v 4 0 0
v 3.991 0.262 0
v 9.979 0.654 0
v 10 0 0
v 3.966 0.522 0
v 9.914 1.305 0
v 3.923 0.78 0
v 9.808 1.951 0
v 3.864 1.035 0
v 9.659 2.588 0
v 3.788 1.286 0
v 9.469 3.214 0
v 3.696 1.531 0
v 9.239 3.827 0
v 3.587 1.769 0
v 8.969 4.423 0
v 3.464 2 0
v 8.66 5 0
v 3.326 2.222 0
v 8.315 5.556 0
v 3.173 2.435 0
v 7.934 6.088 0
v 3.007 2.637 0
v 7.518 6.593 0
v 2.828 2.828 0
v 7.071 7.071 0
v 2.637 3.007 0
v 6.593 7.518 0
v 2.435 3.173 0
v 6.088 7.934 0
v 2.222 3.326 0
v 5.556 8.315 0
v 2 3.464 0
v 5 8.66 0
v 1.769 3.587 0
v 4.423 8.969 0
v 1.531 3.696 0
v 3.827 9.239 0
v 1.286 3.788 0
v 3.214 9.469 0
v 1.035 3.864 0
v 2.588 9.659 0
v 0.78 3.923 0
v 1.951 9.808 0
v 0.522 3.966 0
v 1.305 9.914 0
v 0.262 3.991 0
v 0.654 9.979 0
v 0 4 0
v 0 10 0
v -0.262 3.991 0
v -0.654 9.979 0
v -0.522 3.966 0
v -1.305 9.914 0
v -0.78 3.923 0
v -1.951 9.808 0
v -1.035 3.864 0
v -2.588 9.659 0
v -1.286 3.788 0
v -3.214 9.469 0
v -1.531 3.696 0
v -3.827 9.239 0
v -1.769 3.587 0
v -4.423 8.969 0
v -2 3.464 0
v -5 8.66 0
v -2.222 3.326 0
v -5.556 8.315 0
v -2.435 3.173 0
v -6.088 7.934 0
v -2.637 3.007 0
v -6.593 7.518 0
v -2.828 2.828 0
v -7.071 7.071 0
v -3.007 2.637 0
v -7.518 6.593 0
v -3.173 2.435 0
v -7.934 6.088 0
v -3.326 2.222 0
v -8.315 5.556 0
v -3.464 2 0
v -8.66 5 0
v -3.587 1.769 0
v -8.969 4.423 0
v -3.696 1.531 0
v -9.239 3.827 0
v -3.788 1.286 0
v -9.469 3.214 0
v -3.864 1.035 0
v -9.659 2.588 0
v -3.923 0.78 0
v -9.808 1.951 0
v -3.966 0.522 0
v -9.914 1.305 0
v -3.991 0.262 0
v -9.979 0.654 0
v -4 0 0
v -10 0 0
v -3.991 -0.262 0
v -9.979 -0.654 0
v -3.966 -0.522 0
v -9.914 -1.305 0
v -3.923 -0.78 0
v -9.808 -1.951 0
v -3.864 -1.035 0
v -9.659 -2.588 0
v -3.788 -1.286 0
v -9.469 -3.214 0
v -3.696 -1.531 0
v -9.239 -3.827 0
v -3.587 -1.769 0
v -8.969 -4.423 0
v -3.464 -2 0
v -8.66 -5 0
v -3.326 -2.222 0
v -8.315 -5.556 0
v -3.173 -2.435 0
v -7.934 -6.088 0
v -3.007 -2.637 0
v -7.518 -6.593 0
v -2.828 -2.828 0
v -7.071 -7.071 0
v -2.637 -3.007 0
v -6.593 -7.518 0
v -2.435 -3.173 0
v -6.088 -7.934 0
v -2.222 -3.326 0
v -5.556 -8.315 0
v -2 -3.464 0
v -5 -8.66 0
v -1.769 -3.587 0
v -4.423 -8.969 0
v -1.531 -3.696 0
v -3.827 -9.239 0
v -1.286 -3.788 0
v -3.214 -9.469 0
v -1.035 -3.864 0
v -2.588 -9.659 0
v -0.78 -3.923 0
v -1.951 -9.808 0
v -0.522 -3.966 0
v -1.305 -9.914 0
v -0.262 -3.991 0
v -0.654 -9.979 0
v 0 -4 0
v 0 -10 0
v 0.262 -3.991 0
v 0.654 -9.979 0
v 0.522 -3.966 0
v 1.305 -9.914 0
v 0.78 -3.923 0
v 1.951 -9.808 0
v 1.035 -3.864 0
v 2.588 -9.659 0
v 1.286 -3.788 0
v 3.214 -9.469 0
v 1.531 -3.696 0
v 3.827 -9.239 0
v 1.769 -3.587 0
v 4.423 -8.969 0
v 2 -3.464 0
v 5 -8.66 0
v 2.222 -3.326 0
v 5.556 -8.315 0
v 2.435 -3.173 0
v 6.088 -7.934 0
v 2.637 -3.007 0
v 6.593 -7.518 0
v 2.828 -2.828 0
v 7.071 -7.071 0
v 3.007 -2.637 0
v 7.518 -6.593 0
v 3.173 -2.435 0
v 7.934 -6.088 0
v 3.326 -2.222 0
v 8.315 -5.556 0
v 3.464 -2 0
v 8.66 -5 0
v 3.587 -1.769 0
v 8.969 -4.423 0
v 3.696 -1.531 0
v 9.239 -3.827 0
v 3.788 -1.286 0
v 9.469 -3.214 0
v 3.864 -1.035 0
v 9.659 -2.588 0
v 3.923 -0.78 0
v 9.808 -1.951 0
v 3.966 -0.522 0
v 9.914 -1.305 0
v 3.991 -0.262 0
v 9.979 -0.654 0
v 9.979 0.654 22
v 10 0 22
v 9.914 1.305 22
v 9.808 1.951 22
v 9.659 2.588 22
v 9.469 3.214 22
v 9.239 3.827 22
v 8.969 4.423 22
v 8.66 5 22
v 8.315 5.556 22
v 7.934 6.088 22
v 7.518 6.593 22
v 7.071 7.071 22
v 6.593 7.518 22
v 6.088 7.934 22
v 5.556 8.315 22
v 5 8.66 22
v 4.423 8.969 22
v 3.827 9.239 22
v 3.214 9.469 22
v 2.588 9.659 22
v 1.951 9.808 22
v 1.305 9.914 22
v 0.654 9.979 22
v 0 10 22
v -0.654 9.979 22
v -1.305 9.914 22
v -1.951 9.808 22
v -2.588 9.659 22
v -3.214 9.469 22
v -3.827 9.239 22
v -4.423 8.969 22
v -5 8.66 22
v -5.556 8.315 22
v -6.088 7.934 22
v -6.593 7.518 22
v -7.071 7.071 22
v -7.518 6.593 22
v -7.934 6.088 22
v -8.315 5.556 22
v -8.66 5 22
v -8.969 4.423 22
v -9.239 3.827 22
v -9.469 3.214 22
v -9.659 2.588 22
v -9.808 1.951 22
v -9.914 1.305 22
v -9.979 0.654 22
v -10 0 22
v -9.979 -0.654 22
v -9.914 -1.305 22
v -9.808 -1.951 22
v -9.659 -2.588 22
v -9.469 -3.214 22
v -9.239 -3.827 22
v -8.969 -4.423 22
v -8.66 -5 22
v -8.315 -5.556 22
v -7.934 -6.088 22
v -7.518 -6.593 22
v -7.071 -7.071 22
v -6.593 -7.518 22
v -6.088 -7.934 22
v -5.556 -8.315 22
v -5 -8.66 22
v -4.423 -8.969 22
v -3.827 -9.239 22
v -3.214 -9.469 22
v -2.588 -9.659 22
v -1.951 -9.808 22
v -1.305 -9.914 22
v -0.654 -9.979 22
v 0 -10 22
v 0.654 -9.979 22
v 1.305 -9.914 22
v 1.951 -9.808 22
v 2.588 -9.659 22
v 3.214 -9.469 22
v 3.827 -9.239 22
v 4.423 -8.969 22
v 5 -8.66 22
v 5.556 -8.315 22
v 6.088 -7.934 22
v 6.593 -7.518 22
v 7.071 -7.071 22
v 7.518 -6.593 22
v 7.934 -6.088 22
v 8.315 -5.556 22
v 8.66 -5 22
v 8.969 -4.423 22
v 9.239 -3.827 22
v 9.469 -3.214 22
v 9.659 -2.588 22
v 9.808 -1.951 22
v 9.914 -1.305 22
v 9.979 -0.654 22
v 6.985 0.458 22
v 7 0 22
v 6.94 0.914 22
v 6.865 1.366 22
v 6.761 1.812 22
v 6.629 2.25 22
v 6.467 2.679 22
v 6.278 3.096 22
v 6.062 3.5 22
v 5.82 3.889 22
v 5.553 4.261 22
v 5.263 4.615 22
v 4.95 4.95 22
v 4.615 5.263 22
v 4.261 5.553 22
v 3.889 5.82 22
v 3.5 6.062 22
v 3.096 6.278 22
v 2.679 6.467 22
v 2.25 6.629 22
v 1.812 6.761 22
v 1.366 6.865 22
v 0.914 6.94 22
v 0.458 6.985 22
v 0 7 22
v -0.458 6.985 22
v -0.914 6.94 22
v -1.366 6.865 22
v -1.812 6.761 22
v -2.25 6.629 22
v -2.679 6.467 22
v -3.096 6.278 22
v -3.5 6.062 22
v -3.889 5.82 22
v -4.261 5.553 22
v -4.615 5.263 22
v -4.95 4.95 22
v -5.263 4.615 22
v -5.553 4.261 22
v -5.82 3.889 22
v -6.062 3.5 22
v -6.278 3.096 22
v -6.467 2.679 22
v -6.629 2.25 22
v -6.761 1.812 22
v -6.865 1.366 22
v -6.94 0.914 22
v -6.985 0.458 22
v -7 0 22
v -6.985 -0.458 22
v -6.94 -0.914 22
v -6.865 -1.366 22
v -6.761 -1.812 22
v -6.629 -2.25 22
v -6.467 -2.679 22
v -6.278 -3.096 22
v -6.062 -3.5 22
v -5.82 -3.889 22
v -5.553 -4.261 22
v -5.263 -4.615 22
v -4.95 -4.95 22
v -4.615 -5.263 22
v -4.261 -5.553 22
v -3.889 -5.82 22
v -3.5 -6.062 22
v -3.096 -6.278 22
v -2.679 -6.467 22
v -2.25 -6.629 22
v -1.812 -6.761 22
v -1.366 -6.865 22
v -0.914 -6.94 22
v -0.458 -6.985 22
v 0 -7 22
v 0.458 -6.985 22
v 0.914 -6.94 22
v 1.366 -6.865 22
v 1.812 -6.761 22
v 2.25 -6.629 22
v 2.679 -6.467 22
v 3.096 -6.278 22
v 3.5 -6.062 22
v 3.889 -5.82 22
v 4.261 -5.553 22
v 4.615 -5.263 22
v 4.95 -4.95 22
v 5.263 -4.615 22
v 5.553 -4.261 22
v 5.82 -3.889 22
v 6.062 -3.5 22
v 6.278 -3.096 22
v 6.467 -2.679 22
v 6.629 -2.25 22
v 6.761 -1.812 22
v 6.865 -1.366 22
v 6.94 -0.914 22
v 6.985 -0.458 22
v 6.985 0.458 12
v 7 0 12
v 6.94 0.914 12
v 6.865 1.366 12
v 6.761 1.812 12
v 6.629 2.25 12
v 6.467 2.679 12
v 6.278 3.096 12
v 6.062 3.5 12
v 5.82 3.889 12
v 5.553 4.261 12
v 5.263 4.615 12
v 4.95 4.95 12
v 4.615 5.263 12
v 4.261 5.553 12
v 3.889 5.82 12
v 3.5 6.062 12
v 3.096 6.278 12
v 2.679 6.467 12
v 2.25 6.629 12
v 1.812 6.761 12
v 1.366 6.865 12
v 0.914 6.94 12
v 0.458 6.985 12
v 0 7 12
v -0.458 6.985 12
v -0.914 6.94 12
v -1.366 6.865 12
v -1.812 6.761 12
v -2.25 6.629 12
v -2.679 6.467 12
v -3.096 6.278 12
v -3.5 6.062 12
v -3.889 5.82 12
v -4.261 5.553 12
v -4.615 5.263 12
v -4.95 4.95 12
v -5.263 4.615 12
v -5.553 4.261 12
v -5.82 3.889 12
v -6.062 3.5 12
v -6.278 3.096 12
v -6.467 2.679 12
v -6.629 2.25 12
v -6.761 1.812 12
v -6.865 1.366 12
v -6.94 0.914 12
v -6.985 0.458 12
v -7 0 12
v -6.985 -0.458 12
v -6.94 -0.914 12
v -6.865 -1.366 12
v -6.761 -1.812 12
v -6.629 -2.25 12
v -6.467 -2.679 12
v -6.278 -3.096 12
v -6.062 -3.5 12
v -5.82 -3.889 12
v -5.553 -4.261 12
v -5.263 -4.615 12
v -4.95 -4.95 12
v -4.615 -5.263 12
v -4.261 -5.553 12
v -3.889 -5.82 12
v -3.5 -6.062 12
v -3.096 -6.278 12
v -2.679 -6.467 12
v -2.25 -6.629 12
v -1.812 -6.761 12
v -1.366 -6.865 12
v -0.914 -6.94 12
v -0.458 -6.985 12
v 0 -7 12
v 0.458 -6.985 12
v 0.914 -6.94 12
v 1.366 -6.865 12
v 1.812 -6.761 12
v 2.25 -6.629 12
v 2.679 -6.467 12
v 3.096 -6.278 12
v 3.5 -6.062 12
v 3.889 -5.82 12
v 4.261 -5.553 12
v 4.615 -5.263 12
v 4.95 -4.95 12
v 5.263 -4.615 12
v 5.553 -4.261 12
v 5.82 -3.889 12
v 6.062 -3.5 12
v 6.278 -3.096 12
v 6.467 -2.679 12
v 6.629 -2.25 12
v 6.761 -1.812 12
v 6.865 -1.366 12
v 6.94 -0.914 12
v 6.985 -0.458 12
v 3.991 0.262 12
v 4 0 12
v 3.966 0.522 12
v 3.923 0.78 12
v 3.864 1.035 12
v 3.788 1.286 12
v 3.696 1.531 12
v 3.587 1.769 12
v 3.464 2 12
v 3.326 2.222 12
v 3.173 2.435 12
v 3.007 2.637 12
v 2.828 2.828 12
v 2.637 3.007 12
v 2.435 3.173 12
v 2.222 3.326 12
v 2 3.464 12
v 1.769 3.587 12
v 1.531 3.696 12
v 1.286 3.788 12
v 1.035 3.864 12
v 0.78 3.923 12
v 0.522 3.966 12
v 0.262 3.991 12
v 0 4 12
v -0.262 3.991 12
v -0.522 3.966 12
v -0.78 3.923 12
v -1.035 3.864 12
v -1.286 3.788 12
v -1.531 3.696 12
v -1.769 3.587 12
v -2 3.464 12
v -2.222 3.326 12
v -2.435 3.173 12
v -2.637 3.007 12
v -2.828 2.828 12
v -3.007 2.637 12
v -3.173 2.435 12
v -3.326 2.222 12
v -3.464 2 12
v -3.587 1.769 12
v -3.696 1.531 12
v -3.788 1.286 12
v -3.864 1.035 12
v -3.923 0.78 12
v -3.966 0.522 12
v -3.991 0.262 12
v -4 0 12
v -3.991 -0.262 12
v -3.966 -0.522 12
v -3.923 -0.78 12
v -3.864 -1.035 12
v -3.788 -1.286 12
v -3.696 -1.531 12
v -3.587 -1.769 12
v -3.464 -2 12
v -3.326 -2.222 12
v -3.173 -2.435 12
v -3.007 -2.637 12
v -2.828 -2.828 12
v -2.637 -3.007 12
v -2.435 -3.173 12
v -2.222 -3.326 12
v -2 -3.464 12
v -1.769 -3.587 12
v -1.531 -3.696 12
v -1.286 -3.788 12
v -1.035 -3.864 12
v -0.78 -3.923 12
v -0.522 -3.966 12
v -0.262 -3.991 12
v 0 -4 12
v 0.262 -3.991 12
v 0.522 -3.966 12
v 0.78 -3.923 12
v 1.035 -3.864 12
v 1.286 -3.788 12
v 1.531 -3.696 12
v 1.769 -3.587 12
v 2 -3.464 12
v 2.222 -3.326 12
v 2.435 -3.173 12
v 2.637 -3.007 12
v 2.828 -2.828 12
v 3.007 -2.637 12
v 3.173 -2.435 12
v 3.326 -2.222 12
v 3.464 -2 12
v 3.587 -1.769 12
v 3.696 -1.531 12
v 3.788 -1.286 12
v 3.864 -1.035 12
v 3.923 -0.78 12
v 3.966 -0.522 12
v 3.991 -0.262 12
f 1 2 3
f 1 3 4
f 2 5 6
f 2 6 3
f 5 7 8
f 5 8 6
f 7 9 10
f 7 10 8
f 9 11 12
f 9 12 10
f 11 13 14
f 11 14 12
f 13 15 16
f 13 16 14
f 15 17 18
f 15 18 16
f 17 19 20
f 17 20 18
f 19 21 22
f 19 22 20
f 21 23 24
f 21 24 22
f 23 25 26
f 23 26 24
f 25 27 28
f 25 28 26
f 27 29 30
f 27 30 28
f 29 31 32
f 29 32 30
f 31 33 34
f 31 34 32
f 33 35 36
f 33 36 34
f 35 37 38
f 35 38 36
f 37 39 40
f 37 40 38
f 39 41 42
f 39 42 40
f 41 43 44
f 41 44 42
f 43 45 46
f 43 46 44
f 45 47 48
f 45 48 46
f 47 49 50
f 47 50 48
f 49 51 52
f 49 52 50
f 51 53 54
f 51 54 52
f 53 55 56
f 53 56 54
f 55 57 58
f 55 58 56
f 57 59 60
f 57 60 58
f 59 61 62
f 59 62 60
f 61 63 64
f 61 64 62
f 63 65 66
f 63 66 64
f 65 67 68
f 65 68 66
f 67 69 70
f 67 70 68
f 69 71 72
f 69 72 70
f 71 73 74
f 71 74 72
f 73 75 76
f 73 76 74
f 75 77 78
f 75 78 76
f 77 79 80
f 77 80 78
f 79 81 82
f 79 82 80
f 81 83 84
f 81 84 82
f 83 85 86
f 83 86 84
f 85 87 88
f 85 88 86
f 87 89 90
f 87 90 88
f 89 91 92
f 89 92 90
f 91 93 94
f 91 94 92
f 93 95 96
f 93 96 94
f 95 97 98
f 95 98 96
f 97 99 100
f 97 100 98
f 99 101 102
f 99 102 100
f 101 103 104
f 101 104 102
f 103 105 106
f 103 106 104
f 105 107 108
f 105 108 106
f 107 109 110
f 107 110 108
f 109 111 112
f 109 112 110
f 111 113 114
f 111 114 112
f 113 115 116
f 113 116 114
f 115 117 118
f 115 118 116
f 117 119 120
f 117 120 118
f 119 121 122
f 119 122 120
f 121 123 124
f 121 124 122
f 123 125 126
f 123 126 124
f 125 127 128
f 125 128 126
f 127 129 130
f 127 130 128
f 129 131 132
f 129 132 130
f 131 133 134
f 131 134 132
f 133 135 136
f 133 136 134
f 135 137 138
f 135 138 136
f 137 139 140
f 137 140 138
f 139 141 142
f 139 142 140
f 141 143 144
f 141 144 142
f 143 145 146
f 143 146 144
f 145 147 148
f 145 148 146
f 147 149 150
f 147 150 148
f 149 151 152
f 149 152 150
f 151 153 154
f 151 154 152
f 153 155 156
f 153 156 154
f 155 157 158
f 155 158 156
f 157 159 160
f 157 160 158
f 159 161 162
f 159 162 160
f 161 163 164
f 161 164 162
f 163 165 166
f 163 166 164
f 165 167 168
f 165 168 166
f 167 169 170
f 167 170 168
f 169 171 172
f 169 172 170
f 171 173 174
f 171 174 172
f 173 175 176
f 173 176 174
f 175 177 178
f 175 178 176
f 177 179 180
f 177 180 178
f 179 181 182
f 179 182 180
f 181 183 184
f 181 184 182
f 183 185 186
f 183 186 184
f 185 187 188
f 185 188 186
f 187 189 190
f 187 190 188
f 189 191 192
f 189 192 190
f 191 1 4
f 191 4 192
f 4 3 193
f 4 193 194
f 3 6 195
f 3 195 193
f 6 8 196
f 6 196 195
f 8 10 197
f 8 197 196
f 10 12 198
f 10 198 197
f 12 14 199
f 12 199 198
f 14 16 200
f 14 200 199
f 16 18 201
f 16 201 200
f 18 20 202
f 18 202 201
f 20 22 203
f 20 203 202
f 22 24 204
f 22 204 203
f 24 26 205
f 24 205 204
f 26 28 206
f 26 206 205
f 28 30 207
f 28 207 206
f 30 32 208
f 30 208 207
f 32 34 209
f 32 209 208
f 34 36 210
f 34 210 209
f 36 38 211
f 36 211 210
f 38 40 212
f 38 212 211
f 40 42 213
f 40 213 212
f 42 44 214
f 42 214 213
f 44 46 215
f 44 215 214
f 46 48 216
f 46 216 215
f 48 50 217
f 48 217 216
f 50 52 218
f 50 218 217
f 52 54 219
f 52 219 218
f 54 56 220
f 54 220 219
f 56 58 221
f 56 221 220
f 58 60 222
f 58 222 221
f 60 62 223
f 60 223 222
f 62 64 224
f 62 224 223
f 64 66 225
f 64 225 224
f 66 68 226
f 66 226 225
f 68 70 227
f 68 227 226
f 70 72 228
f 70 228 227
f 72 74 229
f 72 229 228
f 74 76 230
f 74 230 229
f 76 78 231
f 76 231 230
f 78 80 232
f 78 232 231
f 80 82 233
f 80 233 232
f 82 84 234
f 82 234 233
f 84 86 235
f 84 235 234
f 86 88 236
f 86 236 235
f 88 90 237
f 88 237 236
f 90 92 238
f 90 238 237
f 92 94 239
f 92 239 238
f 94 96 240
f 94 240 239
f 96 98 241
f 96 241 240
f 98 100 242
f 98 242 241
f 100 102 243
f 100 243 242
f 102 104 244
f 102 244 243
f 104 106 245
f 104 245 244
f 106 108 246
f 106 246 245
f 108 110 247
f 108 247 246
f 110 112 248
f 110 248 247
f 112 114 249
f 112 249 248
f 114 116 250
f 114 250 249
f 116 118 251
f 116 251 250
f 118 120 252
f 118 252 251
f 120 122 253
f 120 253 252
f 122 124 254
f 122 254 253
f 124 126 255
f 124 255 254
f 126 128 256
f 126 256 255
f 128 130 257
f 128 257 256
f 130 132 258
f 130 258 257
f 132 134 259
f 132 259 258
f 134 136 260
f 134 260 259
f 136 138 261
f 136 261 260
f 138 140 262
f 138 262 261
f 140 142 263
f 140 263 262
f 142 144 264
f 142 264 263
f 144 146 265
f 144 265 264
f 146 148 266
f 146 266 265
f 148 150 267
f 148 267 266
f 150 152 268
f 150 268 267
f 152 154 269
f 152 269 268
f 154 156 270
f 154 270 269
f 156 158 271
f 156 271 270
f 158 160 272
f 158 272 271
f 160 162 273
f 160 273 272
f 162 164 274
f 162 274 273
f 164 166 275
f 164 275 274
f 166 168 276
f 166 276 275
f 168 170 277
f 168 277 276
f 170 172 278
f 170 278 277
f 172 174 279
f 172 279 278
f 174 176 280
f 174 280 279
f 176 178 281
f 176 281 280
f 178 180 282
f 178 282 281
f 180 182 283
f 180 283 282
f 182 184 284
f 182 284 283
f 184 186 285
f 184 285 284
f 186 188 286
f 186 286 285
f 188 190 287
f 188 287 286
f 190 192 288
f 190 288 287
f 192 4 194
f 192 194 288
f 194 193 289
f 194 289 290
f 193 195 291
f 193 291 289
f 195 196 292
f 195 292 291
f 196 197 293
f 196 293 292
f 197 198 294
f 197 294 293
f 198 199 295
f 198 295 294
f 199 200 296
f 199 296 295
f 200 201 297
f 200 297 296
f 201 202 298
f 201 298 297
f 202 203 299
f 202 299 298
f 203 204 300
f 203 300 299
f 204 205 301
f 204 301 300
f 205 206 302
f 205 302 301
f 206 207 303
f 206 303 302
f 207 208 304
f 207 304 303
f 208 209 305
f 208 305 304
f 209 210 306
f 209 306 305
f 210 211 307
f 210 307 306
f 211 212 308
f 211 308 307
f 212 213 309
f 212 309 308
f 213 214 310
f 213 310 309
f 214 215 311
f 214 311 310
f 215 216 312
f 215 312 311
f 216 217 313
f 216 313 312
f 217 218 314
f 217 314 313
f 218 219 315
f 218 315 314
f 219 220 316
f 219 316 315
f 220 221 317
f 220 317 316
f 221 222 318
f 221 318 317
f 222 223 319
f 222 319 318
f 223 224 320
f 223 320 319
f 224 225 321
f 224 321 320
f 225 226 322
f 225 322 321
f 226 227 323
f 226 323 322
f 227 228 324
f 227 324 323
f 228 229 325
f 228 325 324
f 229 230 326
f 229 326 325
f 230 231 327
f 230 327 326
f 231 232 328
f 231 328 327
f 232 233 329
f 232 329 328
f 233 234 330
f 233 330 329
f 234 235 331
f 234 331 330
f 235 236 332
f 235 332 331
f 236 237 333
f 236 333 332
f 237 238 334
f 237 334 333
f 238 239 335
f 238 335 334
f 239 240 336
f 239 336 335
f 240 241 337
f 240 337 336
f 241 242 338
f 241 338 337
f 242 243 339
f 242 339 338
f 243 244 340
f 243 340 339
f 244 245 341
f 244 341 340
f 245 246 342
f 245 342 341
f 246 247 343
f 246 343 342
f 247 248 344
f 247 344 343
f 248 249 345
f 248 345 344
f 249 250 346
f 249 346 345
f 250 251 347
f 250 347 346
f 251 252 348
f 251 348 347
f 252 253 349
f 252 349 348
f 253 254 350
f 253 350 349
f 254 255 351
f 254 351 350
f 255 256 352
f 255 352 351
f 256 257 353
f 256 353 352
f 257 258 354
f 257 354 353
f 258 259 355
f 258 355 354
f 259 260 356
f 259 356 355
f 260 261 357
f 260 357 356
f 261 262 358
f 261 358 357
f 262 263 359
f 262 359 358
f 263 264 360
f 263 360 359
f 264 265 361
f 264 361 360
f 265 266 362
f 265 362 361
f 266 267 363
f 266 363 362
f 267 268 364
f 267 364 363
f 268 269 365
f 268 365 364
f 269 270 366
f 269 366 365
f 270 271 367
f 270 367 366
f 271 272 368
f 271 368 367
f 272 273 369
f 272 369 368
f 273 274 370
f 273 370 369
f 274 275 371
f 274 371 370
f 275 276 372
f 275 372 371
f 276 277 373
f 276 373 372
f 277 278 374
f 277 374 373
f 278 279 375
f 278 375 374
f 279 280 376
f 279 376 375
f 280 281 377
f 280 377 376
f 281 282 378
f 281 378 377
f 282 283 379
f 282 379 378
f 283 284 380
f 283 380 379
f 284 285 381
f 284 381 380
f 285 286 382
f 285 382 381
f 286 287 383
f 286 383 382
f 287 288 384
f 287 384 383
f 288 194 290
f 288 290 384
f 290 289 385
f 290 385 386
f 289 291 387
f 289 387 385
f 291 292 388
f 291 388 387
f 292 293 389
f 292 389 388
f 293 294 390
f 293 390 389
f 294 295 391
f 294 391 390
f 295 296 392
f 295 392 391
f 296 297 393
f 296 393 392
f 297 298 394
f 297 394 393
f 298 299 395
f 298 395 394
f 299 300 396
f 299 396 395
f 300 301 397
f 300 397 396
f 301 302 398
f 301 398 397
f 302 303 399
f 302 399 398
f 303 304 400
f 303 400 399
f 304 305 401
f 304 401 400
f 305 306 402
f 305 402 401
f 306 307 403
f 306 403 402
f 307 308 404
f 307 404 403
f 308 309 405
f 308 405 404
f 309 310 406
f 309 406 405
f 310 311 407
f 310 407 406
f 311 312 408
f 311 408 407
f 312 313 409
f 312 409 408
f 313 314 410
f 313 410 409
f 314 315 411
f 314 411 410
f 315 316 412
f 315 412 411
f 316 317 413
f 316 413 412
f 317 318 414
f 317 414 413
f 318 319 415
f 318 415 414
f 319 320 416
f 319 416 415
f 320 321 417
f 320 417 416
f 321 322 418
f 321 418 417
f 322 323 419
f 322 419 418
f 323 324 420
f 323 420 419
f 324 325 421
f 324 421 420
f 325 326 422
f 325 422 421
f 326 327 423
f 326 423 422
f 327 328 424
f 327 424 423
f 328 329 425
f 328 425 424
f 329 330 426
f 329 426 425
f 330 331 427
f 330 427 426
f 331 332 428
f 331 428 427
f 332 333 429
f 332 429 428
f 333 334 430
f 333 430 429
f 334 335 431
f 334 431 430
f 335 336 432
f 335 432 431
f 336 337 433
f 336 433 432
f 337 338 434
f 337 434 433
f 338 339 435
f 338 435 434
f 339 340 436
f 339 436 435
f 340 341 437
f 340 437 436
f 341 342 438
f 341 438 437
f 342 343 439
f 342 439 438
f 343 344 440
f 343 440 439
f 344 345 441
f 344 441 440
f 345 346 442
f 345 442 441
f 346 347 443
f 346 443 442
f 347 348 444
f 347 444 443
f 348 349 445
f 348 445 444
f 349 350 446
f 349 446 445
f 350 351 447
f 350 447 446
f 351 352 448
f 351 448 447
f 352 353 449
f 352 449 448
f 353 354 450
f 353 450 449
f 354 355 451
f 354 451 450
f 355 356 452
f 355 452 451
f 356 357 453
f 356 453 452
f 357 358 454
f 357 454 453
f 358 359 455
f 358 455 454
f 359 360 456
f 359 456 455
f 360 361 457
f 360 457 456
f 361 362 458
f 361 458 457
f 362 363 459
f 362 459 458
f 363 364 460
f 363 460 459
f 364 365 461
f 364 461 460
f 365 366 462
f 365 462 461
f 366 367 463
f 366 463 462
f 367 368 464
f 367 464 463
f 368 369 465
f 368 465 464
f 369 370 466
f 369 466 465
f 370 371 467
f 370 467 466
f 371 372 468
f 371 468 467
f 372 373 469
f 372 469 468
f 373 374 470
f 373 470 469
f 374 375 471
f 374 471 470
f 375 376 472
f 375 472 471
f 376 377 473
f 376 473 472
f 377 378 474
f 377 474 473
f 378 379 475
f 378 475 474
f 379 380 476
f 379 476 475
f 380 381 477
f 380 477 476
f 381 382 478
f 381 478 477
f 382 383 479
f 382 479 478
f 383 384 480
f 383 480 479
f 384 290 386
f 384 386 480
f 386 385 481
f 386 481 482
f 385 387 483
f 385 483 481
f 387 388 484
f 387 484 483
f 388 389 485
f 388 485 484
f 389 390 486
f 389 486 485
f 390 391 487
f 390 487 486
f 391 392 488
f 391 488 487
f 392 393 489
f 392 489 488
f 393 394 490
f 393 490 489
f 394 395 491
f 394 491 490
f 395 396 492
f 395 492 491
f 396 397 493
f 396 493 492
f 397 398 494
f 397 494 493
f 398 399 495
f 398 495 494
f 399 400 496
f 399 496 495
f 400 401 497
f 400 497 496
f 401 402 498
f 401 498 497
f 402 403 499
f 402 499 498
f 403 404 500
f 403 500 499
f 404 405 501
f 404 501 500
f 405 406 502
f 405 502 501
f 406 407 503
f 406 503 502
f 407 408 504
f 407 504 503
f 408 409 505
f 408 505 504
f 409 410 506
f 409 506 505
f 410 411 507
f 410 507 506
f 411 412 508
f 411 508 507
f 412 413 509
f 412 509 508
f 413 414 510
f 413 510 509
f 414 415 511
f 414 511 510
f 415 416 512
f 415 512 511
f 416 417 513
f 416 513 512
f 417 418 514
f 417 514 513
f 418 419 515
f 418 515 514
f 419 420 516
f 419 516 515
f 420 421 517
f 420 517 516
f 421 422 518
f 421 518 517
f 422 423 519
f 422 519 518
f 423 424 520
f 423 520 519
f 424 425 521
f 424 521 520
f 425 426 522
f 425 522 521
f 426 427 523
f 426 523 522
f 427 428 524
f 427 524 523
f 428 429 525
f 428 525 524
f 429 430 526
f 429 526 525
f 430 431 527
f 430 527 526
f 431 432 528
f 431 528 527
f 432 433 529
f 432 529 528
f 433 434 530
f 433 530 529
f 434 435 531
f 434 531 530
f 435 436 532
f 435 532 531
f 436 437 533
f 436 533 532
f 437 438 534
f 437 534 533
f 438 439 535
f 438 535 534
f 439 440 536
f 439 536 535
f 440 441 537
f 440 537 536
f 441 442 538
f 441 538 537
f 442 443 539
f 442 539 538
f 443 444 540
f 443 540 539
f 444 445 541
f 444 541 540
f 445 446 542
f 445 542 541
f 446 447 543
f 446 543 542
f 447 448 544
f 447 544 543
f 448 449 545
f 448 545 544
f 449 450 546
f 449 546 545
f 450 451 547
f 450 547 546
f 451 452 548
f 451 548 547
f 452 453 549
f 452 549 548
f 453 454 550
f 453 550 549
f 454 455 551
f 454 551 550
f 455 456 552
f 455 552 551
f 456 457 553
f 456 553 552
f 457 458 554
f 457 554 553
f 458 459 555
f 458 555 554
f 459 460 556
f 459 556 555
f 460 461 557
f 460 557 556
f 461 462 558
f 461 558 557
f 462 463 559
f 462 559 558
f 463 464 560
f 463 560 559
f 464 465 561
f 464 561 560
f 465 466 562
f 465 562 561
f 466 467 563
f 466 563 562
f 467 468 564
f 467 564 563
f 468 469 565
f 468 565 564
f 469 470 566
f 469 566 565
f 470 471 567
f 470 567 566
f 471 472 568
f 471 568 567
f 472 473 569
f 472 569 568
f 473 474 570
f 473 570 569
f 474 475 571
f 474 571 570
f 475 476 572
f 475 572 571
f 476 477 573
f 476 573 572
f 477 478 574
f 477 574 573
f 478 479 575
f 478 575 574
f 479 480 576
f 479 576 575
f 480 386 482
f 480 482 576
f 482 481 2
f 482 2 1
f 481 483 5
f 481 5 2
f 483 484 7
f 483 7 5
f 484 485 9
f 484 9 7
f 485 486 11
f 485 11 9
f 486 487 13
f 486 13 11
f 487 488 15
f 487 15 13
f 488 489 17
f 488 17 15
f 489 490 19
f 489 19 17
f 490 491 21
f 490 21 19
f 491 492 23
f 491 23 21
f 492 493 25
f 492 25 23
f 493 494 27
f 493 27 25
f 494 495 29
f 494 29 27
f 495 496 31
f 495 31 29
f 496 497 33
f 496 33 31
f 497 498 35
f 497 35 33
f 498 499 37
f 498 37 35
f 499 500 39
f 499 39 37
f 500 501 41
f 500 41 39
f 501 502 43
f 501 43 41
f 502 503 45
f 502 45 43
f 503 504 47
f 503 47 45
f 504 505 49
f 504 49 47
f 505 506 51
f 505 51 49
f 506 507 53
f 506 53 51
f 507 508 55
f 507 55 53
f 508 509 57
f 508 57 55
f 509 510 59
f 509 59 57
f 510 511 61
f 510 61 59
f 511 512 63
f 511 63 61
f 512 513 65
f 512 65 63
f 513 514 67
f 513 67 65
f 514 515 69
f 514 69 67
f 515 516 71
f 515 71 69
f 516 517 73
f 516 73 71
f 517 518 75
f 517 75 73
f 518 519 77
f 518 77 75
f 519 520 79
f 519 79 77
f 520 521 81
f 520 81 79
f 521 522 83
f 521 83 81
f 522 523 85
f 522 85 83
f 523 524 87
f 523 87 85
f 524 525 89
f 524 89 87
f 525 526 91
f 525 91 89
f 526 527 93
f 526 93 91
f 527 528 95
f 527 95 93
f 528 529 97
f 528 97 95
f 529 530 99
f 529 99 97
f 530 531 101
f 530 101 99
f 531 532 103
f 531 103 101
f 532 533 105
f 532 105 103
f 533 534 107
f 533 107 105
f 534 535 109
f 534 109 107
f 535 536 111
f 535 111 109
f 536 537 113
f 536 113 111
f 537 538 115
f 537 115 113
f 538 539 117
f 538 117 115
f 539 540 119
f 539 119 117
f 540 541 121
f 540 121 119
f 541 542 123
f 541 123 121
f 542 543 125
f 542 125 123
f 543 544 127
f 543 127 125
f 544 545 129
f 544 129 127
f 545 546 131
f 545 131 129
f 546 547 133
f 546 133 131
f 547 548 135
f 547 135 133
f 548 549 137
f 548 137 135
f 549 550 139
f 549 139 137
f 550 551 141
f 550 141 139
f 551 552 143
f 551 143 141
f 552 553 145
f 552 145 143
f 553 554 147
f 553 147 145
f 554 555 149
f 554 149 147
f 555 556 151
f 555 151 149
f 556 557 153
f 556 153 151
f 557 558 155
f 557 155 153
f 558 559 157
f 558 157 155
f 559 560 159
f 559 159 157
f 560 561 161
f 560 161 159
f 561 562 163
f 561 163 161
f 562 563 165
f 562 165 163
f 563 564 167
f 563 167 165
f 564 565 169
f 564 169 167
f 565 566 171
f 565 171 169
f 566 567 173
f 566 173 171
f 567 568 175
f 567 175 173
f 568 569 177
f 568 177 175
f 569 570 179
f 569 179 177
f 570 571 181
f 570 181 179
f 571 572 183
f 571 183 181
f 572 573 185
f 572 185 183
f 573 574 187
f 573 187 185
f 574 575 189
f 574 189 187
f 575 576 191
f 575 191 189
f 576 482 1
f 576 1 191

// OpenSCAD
// Original MechIntel educational model. CC0-1.0. Units: mm.
// Not a standardized or load-rated component.
$fn=96;
// Section points: [radius, height], mm. Edit to change the profile.
section=[[4, 0], [10, 0], [10, 22], [7, 22], [7, 12], [4, 12]];
rotate_extrude($fn=96) polygon(points=section);
